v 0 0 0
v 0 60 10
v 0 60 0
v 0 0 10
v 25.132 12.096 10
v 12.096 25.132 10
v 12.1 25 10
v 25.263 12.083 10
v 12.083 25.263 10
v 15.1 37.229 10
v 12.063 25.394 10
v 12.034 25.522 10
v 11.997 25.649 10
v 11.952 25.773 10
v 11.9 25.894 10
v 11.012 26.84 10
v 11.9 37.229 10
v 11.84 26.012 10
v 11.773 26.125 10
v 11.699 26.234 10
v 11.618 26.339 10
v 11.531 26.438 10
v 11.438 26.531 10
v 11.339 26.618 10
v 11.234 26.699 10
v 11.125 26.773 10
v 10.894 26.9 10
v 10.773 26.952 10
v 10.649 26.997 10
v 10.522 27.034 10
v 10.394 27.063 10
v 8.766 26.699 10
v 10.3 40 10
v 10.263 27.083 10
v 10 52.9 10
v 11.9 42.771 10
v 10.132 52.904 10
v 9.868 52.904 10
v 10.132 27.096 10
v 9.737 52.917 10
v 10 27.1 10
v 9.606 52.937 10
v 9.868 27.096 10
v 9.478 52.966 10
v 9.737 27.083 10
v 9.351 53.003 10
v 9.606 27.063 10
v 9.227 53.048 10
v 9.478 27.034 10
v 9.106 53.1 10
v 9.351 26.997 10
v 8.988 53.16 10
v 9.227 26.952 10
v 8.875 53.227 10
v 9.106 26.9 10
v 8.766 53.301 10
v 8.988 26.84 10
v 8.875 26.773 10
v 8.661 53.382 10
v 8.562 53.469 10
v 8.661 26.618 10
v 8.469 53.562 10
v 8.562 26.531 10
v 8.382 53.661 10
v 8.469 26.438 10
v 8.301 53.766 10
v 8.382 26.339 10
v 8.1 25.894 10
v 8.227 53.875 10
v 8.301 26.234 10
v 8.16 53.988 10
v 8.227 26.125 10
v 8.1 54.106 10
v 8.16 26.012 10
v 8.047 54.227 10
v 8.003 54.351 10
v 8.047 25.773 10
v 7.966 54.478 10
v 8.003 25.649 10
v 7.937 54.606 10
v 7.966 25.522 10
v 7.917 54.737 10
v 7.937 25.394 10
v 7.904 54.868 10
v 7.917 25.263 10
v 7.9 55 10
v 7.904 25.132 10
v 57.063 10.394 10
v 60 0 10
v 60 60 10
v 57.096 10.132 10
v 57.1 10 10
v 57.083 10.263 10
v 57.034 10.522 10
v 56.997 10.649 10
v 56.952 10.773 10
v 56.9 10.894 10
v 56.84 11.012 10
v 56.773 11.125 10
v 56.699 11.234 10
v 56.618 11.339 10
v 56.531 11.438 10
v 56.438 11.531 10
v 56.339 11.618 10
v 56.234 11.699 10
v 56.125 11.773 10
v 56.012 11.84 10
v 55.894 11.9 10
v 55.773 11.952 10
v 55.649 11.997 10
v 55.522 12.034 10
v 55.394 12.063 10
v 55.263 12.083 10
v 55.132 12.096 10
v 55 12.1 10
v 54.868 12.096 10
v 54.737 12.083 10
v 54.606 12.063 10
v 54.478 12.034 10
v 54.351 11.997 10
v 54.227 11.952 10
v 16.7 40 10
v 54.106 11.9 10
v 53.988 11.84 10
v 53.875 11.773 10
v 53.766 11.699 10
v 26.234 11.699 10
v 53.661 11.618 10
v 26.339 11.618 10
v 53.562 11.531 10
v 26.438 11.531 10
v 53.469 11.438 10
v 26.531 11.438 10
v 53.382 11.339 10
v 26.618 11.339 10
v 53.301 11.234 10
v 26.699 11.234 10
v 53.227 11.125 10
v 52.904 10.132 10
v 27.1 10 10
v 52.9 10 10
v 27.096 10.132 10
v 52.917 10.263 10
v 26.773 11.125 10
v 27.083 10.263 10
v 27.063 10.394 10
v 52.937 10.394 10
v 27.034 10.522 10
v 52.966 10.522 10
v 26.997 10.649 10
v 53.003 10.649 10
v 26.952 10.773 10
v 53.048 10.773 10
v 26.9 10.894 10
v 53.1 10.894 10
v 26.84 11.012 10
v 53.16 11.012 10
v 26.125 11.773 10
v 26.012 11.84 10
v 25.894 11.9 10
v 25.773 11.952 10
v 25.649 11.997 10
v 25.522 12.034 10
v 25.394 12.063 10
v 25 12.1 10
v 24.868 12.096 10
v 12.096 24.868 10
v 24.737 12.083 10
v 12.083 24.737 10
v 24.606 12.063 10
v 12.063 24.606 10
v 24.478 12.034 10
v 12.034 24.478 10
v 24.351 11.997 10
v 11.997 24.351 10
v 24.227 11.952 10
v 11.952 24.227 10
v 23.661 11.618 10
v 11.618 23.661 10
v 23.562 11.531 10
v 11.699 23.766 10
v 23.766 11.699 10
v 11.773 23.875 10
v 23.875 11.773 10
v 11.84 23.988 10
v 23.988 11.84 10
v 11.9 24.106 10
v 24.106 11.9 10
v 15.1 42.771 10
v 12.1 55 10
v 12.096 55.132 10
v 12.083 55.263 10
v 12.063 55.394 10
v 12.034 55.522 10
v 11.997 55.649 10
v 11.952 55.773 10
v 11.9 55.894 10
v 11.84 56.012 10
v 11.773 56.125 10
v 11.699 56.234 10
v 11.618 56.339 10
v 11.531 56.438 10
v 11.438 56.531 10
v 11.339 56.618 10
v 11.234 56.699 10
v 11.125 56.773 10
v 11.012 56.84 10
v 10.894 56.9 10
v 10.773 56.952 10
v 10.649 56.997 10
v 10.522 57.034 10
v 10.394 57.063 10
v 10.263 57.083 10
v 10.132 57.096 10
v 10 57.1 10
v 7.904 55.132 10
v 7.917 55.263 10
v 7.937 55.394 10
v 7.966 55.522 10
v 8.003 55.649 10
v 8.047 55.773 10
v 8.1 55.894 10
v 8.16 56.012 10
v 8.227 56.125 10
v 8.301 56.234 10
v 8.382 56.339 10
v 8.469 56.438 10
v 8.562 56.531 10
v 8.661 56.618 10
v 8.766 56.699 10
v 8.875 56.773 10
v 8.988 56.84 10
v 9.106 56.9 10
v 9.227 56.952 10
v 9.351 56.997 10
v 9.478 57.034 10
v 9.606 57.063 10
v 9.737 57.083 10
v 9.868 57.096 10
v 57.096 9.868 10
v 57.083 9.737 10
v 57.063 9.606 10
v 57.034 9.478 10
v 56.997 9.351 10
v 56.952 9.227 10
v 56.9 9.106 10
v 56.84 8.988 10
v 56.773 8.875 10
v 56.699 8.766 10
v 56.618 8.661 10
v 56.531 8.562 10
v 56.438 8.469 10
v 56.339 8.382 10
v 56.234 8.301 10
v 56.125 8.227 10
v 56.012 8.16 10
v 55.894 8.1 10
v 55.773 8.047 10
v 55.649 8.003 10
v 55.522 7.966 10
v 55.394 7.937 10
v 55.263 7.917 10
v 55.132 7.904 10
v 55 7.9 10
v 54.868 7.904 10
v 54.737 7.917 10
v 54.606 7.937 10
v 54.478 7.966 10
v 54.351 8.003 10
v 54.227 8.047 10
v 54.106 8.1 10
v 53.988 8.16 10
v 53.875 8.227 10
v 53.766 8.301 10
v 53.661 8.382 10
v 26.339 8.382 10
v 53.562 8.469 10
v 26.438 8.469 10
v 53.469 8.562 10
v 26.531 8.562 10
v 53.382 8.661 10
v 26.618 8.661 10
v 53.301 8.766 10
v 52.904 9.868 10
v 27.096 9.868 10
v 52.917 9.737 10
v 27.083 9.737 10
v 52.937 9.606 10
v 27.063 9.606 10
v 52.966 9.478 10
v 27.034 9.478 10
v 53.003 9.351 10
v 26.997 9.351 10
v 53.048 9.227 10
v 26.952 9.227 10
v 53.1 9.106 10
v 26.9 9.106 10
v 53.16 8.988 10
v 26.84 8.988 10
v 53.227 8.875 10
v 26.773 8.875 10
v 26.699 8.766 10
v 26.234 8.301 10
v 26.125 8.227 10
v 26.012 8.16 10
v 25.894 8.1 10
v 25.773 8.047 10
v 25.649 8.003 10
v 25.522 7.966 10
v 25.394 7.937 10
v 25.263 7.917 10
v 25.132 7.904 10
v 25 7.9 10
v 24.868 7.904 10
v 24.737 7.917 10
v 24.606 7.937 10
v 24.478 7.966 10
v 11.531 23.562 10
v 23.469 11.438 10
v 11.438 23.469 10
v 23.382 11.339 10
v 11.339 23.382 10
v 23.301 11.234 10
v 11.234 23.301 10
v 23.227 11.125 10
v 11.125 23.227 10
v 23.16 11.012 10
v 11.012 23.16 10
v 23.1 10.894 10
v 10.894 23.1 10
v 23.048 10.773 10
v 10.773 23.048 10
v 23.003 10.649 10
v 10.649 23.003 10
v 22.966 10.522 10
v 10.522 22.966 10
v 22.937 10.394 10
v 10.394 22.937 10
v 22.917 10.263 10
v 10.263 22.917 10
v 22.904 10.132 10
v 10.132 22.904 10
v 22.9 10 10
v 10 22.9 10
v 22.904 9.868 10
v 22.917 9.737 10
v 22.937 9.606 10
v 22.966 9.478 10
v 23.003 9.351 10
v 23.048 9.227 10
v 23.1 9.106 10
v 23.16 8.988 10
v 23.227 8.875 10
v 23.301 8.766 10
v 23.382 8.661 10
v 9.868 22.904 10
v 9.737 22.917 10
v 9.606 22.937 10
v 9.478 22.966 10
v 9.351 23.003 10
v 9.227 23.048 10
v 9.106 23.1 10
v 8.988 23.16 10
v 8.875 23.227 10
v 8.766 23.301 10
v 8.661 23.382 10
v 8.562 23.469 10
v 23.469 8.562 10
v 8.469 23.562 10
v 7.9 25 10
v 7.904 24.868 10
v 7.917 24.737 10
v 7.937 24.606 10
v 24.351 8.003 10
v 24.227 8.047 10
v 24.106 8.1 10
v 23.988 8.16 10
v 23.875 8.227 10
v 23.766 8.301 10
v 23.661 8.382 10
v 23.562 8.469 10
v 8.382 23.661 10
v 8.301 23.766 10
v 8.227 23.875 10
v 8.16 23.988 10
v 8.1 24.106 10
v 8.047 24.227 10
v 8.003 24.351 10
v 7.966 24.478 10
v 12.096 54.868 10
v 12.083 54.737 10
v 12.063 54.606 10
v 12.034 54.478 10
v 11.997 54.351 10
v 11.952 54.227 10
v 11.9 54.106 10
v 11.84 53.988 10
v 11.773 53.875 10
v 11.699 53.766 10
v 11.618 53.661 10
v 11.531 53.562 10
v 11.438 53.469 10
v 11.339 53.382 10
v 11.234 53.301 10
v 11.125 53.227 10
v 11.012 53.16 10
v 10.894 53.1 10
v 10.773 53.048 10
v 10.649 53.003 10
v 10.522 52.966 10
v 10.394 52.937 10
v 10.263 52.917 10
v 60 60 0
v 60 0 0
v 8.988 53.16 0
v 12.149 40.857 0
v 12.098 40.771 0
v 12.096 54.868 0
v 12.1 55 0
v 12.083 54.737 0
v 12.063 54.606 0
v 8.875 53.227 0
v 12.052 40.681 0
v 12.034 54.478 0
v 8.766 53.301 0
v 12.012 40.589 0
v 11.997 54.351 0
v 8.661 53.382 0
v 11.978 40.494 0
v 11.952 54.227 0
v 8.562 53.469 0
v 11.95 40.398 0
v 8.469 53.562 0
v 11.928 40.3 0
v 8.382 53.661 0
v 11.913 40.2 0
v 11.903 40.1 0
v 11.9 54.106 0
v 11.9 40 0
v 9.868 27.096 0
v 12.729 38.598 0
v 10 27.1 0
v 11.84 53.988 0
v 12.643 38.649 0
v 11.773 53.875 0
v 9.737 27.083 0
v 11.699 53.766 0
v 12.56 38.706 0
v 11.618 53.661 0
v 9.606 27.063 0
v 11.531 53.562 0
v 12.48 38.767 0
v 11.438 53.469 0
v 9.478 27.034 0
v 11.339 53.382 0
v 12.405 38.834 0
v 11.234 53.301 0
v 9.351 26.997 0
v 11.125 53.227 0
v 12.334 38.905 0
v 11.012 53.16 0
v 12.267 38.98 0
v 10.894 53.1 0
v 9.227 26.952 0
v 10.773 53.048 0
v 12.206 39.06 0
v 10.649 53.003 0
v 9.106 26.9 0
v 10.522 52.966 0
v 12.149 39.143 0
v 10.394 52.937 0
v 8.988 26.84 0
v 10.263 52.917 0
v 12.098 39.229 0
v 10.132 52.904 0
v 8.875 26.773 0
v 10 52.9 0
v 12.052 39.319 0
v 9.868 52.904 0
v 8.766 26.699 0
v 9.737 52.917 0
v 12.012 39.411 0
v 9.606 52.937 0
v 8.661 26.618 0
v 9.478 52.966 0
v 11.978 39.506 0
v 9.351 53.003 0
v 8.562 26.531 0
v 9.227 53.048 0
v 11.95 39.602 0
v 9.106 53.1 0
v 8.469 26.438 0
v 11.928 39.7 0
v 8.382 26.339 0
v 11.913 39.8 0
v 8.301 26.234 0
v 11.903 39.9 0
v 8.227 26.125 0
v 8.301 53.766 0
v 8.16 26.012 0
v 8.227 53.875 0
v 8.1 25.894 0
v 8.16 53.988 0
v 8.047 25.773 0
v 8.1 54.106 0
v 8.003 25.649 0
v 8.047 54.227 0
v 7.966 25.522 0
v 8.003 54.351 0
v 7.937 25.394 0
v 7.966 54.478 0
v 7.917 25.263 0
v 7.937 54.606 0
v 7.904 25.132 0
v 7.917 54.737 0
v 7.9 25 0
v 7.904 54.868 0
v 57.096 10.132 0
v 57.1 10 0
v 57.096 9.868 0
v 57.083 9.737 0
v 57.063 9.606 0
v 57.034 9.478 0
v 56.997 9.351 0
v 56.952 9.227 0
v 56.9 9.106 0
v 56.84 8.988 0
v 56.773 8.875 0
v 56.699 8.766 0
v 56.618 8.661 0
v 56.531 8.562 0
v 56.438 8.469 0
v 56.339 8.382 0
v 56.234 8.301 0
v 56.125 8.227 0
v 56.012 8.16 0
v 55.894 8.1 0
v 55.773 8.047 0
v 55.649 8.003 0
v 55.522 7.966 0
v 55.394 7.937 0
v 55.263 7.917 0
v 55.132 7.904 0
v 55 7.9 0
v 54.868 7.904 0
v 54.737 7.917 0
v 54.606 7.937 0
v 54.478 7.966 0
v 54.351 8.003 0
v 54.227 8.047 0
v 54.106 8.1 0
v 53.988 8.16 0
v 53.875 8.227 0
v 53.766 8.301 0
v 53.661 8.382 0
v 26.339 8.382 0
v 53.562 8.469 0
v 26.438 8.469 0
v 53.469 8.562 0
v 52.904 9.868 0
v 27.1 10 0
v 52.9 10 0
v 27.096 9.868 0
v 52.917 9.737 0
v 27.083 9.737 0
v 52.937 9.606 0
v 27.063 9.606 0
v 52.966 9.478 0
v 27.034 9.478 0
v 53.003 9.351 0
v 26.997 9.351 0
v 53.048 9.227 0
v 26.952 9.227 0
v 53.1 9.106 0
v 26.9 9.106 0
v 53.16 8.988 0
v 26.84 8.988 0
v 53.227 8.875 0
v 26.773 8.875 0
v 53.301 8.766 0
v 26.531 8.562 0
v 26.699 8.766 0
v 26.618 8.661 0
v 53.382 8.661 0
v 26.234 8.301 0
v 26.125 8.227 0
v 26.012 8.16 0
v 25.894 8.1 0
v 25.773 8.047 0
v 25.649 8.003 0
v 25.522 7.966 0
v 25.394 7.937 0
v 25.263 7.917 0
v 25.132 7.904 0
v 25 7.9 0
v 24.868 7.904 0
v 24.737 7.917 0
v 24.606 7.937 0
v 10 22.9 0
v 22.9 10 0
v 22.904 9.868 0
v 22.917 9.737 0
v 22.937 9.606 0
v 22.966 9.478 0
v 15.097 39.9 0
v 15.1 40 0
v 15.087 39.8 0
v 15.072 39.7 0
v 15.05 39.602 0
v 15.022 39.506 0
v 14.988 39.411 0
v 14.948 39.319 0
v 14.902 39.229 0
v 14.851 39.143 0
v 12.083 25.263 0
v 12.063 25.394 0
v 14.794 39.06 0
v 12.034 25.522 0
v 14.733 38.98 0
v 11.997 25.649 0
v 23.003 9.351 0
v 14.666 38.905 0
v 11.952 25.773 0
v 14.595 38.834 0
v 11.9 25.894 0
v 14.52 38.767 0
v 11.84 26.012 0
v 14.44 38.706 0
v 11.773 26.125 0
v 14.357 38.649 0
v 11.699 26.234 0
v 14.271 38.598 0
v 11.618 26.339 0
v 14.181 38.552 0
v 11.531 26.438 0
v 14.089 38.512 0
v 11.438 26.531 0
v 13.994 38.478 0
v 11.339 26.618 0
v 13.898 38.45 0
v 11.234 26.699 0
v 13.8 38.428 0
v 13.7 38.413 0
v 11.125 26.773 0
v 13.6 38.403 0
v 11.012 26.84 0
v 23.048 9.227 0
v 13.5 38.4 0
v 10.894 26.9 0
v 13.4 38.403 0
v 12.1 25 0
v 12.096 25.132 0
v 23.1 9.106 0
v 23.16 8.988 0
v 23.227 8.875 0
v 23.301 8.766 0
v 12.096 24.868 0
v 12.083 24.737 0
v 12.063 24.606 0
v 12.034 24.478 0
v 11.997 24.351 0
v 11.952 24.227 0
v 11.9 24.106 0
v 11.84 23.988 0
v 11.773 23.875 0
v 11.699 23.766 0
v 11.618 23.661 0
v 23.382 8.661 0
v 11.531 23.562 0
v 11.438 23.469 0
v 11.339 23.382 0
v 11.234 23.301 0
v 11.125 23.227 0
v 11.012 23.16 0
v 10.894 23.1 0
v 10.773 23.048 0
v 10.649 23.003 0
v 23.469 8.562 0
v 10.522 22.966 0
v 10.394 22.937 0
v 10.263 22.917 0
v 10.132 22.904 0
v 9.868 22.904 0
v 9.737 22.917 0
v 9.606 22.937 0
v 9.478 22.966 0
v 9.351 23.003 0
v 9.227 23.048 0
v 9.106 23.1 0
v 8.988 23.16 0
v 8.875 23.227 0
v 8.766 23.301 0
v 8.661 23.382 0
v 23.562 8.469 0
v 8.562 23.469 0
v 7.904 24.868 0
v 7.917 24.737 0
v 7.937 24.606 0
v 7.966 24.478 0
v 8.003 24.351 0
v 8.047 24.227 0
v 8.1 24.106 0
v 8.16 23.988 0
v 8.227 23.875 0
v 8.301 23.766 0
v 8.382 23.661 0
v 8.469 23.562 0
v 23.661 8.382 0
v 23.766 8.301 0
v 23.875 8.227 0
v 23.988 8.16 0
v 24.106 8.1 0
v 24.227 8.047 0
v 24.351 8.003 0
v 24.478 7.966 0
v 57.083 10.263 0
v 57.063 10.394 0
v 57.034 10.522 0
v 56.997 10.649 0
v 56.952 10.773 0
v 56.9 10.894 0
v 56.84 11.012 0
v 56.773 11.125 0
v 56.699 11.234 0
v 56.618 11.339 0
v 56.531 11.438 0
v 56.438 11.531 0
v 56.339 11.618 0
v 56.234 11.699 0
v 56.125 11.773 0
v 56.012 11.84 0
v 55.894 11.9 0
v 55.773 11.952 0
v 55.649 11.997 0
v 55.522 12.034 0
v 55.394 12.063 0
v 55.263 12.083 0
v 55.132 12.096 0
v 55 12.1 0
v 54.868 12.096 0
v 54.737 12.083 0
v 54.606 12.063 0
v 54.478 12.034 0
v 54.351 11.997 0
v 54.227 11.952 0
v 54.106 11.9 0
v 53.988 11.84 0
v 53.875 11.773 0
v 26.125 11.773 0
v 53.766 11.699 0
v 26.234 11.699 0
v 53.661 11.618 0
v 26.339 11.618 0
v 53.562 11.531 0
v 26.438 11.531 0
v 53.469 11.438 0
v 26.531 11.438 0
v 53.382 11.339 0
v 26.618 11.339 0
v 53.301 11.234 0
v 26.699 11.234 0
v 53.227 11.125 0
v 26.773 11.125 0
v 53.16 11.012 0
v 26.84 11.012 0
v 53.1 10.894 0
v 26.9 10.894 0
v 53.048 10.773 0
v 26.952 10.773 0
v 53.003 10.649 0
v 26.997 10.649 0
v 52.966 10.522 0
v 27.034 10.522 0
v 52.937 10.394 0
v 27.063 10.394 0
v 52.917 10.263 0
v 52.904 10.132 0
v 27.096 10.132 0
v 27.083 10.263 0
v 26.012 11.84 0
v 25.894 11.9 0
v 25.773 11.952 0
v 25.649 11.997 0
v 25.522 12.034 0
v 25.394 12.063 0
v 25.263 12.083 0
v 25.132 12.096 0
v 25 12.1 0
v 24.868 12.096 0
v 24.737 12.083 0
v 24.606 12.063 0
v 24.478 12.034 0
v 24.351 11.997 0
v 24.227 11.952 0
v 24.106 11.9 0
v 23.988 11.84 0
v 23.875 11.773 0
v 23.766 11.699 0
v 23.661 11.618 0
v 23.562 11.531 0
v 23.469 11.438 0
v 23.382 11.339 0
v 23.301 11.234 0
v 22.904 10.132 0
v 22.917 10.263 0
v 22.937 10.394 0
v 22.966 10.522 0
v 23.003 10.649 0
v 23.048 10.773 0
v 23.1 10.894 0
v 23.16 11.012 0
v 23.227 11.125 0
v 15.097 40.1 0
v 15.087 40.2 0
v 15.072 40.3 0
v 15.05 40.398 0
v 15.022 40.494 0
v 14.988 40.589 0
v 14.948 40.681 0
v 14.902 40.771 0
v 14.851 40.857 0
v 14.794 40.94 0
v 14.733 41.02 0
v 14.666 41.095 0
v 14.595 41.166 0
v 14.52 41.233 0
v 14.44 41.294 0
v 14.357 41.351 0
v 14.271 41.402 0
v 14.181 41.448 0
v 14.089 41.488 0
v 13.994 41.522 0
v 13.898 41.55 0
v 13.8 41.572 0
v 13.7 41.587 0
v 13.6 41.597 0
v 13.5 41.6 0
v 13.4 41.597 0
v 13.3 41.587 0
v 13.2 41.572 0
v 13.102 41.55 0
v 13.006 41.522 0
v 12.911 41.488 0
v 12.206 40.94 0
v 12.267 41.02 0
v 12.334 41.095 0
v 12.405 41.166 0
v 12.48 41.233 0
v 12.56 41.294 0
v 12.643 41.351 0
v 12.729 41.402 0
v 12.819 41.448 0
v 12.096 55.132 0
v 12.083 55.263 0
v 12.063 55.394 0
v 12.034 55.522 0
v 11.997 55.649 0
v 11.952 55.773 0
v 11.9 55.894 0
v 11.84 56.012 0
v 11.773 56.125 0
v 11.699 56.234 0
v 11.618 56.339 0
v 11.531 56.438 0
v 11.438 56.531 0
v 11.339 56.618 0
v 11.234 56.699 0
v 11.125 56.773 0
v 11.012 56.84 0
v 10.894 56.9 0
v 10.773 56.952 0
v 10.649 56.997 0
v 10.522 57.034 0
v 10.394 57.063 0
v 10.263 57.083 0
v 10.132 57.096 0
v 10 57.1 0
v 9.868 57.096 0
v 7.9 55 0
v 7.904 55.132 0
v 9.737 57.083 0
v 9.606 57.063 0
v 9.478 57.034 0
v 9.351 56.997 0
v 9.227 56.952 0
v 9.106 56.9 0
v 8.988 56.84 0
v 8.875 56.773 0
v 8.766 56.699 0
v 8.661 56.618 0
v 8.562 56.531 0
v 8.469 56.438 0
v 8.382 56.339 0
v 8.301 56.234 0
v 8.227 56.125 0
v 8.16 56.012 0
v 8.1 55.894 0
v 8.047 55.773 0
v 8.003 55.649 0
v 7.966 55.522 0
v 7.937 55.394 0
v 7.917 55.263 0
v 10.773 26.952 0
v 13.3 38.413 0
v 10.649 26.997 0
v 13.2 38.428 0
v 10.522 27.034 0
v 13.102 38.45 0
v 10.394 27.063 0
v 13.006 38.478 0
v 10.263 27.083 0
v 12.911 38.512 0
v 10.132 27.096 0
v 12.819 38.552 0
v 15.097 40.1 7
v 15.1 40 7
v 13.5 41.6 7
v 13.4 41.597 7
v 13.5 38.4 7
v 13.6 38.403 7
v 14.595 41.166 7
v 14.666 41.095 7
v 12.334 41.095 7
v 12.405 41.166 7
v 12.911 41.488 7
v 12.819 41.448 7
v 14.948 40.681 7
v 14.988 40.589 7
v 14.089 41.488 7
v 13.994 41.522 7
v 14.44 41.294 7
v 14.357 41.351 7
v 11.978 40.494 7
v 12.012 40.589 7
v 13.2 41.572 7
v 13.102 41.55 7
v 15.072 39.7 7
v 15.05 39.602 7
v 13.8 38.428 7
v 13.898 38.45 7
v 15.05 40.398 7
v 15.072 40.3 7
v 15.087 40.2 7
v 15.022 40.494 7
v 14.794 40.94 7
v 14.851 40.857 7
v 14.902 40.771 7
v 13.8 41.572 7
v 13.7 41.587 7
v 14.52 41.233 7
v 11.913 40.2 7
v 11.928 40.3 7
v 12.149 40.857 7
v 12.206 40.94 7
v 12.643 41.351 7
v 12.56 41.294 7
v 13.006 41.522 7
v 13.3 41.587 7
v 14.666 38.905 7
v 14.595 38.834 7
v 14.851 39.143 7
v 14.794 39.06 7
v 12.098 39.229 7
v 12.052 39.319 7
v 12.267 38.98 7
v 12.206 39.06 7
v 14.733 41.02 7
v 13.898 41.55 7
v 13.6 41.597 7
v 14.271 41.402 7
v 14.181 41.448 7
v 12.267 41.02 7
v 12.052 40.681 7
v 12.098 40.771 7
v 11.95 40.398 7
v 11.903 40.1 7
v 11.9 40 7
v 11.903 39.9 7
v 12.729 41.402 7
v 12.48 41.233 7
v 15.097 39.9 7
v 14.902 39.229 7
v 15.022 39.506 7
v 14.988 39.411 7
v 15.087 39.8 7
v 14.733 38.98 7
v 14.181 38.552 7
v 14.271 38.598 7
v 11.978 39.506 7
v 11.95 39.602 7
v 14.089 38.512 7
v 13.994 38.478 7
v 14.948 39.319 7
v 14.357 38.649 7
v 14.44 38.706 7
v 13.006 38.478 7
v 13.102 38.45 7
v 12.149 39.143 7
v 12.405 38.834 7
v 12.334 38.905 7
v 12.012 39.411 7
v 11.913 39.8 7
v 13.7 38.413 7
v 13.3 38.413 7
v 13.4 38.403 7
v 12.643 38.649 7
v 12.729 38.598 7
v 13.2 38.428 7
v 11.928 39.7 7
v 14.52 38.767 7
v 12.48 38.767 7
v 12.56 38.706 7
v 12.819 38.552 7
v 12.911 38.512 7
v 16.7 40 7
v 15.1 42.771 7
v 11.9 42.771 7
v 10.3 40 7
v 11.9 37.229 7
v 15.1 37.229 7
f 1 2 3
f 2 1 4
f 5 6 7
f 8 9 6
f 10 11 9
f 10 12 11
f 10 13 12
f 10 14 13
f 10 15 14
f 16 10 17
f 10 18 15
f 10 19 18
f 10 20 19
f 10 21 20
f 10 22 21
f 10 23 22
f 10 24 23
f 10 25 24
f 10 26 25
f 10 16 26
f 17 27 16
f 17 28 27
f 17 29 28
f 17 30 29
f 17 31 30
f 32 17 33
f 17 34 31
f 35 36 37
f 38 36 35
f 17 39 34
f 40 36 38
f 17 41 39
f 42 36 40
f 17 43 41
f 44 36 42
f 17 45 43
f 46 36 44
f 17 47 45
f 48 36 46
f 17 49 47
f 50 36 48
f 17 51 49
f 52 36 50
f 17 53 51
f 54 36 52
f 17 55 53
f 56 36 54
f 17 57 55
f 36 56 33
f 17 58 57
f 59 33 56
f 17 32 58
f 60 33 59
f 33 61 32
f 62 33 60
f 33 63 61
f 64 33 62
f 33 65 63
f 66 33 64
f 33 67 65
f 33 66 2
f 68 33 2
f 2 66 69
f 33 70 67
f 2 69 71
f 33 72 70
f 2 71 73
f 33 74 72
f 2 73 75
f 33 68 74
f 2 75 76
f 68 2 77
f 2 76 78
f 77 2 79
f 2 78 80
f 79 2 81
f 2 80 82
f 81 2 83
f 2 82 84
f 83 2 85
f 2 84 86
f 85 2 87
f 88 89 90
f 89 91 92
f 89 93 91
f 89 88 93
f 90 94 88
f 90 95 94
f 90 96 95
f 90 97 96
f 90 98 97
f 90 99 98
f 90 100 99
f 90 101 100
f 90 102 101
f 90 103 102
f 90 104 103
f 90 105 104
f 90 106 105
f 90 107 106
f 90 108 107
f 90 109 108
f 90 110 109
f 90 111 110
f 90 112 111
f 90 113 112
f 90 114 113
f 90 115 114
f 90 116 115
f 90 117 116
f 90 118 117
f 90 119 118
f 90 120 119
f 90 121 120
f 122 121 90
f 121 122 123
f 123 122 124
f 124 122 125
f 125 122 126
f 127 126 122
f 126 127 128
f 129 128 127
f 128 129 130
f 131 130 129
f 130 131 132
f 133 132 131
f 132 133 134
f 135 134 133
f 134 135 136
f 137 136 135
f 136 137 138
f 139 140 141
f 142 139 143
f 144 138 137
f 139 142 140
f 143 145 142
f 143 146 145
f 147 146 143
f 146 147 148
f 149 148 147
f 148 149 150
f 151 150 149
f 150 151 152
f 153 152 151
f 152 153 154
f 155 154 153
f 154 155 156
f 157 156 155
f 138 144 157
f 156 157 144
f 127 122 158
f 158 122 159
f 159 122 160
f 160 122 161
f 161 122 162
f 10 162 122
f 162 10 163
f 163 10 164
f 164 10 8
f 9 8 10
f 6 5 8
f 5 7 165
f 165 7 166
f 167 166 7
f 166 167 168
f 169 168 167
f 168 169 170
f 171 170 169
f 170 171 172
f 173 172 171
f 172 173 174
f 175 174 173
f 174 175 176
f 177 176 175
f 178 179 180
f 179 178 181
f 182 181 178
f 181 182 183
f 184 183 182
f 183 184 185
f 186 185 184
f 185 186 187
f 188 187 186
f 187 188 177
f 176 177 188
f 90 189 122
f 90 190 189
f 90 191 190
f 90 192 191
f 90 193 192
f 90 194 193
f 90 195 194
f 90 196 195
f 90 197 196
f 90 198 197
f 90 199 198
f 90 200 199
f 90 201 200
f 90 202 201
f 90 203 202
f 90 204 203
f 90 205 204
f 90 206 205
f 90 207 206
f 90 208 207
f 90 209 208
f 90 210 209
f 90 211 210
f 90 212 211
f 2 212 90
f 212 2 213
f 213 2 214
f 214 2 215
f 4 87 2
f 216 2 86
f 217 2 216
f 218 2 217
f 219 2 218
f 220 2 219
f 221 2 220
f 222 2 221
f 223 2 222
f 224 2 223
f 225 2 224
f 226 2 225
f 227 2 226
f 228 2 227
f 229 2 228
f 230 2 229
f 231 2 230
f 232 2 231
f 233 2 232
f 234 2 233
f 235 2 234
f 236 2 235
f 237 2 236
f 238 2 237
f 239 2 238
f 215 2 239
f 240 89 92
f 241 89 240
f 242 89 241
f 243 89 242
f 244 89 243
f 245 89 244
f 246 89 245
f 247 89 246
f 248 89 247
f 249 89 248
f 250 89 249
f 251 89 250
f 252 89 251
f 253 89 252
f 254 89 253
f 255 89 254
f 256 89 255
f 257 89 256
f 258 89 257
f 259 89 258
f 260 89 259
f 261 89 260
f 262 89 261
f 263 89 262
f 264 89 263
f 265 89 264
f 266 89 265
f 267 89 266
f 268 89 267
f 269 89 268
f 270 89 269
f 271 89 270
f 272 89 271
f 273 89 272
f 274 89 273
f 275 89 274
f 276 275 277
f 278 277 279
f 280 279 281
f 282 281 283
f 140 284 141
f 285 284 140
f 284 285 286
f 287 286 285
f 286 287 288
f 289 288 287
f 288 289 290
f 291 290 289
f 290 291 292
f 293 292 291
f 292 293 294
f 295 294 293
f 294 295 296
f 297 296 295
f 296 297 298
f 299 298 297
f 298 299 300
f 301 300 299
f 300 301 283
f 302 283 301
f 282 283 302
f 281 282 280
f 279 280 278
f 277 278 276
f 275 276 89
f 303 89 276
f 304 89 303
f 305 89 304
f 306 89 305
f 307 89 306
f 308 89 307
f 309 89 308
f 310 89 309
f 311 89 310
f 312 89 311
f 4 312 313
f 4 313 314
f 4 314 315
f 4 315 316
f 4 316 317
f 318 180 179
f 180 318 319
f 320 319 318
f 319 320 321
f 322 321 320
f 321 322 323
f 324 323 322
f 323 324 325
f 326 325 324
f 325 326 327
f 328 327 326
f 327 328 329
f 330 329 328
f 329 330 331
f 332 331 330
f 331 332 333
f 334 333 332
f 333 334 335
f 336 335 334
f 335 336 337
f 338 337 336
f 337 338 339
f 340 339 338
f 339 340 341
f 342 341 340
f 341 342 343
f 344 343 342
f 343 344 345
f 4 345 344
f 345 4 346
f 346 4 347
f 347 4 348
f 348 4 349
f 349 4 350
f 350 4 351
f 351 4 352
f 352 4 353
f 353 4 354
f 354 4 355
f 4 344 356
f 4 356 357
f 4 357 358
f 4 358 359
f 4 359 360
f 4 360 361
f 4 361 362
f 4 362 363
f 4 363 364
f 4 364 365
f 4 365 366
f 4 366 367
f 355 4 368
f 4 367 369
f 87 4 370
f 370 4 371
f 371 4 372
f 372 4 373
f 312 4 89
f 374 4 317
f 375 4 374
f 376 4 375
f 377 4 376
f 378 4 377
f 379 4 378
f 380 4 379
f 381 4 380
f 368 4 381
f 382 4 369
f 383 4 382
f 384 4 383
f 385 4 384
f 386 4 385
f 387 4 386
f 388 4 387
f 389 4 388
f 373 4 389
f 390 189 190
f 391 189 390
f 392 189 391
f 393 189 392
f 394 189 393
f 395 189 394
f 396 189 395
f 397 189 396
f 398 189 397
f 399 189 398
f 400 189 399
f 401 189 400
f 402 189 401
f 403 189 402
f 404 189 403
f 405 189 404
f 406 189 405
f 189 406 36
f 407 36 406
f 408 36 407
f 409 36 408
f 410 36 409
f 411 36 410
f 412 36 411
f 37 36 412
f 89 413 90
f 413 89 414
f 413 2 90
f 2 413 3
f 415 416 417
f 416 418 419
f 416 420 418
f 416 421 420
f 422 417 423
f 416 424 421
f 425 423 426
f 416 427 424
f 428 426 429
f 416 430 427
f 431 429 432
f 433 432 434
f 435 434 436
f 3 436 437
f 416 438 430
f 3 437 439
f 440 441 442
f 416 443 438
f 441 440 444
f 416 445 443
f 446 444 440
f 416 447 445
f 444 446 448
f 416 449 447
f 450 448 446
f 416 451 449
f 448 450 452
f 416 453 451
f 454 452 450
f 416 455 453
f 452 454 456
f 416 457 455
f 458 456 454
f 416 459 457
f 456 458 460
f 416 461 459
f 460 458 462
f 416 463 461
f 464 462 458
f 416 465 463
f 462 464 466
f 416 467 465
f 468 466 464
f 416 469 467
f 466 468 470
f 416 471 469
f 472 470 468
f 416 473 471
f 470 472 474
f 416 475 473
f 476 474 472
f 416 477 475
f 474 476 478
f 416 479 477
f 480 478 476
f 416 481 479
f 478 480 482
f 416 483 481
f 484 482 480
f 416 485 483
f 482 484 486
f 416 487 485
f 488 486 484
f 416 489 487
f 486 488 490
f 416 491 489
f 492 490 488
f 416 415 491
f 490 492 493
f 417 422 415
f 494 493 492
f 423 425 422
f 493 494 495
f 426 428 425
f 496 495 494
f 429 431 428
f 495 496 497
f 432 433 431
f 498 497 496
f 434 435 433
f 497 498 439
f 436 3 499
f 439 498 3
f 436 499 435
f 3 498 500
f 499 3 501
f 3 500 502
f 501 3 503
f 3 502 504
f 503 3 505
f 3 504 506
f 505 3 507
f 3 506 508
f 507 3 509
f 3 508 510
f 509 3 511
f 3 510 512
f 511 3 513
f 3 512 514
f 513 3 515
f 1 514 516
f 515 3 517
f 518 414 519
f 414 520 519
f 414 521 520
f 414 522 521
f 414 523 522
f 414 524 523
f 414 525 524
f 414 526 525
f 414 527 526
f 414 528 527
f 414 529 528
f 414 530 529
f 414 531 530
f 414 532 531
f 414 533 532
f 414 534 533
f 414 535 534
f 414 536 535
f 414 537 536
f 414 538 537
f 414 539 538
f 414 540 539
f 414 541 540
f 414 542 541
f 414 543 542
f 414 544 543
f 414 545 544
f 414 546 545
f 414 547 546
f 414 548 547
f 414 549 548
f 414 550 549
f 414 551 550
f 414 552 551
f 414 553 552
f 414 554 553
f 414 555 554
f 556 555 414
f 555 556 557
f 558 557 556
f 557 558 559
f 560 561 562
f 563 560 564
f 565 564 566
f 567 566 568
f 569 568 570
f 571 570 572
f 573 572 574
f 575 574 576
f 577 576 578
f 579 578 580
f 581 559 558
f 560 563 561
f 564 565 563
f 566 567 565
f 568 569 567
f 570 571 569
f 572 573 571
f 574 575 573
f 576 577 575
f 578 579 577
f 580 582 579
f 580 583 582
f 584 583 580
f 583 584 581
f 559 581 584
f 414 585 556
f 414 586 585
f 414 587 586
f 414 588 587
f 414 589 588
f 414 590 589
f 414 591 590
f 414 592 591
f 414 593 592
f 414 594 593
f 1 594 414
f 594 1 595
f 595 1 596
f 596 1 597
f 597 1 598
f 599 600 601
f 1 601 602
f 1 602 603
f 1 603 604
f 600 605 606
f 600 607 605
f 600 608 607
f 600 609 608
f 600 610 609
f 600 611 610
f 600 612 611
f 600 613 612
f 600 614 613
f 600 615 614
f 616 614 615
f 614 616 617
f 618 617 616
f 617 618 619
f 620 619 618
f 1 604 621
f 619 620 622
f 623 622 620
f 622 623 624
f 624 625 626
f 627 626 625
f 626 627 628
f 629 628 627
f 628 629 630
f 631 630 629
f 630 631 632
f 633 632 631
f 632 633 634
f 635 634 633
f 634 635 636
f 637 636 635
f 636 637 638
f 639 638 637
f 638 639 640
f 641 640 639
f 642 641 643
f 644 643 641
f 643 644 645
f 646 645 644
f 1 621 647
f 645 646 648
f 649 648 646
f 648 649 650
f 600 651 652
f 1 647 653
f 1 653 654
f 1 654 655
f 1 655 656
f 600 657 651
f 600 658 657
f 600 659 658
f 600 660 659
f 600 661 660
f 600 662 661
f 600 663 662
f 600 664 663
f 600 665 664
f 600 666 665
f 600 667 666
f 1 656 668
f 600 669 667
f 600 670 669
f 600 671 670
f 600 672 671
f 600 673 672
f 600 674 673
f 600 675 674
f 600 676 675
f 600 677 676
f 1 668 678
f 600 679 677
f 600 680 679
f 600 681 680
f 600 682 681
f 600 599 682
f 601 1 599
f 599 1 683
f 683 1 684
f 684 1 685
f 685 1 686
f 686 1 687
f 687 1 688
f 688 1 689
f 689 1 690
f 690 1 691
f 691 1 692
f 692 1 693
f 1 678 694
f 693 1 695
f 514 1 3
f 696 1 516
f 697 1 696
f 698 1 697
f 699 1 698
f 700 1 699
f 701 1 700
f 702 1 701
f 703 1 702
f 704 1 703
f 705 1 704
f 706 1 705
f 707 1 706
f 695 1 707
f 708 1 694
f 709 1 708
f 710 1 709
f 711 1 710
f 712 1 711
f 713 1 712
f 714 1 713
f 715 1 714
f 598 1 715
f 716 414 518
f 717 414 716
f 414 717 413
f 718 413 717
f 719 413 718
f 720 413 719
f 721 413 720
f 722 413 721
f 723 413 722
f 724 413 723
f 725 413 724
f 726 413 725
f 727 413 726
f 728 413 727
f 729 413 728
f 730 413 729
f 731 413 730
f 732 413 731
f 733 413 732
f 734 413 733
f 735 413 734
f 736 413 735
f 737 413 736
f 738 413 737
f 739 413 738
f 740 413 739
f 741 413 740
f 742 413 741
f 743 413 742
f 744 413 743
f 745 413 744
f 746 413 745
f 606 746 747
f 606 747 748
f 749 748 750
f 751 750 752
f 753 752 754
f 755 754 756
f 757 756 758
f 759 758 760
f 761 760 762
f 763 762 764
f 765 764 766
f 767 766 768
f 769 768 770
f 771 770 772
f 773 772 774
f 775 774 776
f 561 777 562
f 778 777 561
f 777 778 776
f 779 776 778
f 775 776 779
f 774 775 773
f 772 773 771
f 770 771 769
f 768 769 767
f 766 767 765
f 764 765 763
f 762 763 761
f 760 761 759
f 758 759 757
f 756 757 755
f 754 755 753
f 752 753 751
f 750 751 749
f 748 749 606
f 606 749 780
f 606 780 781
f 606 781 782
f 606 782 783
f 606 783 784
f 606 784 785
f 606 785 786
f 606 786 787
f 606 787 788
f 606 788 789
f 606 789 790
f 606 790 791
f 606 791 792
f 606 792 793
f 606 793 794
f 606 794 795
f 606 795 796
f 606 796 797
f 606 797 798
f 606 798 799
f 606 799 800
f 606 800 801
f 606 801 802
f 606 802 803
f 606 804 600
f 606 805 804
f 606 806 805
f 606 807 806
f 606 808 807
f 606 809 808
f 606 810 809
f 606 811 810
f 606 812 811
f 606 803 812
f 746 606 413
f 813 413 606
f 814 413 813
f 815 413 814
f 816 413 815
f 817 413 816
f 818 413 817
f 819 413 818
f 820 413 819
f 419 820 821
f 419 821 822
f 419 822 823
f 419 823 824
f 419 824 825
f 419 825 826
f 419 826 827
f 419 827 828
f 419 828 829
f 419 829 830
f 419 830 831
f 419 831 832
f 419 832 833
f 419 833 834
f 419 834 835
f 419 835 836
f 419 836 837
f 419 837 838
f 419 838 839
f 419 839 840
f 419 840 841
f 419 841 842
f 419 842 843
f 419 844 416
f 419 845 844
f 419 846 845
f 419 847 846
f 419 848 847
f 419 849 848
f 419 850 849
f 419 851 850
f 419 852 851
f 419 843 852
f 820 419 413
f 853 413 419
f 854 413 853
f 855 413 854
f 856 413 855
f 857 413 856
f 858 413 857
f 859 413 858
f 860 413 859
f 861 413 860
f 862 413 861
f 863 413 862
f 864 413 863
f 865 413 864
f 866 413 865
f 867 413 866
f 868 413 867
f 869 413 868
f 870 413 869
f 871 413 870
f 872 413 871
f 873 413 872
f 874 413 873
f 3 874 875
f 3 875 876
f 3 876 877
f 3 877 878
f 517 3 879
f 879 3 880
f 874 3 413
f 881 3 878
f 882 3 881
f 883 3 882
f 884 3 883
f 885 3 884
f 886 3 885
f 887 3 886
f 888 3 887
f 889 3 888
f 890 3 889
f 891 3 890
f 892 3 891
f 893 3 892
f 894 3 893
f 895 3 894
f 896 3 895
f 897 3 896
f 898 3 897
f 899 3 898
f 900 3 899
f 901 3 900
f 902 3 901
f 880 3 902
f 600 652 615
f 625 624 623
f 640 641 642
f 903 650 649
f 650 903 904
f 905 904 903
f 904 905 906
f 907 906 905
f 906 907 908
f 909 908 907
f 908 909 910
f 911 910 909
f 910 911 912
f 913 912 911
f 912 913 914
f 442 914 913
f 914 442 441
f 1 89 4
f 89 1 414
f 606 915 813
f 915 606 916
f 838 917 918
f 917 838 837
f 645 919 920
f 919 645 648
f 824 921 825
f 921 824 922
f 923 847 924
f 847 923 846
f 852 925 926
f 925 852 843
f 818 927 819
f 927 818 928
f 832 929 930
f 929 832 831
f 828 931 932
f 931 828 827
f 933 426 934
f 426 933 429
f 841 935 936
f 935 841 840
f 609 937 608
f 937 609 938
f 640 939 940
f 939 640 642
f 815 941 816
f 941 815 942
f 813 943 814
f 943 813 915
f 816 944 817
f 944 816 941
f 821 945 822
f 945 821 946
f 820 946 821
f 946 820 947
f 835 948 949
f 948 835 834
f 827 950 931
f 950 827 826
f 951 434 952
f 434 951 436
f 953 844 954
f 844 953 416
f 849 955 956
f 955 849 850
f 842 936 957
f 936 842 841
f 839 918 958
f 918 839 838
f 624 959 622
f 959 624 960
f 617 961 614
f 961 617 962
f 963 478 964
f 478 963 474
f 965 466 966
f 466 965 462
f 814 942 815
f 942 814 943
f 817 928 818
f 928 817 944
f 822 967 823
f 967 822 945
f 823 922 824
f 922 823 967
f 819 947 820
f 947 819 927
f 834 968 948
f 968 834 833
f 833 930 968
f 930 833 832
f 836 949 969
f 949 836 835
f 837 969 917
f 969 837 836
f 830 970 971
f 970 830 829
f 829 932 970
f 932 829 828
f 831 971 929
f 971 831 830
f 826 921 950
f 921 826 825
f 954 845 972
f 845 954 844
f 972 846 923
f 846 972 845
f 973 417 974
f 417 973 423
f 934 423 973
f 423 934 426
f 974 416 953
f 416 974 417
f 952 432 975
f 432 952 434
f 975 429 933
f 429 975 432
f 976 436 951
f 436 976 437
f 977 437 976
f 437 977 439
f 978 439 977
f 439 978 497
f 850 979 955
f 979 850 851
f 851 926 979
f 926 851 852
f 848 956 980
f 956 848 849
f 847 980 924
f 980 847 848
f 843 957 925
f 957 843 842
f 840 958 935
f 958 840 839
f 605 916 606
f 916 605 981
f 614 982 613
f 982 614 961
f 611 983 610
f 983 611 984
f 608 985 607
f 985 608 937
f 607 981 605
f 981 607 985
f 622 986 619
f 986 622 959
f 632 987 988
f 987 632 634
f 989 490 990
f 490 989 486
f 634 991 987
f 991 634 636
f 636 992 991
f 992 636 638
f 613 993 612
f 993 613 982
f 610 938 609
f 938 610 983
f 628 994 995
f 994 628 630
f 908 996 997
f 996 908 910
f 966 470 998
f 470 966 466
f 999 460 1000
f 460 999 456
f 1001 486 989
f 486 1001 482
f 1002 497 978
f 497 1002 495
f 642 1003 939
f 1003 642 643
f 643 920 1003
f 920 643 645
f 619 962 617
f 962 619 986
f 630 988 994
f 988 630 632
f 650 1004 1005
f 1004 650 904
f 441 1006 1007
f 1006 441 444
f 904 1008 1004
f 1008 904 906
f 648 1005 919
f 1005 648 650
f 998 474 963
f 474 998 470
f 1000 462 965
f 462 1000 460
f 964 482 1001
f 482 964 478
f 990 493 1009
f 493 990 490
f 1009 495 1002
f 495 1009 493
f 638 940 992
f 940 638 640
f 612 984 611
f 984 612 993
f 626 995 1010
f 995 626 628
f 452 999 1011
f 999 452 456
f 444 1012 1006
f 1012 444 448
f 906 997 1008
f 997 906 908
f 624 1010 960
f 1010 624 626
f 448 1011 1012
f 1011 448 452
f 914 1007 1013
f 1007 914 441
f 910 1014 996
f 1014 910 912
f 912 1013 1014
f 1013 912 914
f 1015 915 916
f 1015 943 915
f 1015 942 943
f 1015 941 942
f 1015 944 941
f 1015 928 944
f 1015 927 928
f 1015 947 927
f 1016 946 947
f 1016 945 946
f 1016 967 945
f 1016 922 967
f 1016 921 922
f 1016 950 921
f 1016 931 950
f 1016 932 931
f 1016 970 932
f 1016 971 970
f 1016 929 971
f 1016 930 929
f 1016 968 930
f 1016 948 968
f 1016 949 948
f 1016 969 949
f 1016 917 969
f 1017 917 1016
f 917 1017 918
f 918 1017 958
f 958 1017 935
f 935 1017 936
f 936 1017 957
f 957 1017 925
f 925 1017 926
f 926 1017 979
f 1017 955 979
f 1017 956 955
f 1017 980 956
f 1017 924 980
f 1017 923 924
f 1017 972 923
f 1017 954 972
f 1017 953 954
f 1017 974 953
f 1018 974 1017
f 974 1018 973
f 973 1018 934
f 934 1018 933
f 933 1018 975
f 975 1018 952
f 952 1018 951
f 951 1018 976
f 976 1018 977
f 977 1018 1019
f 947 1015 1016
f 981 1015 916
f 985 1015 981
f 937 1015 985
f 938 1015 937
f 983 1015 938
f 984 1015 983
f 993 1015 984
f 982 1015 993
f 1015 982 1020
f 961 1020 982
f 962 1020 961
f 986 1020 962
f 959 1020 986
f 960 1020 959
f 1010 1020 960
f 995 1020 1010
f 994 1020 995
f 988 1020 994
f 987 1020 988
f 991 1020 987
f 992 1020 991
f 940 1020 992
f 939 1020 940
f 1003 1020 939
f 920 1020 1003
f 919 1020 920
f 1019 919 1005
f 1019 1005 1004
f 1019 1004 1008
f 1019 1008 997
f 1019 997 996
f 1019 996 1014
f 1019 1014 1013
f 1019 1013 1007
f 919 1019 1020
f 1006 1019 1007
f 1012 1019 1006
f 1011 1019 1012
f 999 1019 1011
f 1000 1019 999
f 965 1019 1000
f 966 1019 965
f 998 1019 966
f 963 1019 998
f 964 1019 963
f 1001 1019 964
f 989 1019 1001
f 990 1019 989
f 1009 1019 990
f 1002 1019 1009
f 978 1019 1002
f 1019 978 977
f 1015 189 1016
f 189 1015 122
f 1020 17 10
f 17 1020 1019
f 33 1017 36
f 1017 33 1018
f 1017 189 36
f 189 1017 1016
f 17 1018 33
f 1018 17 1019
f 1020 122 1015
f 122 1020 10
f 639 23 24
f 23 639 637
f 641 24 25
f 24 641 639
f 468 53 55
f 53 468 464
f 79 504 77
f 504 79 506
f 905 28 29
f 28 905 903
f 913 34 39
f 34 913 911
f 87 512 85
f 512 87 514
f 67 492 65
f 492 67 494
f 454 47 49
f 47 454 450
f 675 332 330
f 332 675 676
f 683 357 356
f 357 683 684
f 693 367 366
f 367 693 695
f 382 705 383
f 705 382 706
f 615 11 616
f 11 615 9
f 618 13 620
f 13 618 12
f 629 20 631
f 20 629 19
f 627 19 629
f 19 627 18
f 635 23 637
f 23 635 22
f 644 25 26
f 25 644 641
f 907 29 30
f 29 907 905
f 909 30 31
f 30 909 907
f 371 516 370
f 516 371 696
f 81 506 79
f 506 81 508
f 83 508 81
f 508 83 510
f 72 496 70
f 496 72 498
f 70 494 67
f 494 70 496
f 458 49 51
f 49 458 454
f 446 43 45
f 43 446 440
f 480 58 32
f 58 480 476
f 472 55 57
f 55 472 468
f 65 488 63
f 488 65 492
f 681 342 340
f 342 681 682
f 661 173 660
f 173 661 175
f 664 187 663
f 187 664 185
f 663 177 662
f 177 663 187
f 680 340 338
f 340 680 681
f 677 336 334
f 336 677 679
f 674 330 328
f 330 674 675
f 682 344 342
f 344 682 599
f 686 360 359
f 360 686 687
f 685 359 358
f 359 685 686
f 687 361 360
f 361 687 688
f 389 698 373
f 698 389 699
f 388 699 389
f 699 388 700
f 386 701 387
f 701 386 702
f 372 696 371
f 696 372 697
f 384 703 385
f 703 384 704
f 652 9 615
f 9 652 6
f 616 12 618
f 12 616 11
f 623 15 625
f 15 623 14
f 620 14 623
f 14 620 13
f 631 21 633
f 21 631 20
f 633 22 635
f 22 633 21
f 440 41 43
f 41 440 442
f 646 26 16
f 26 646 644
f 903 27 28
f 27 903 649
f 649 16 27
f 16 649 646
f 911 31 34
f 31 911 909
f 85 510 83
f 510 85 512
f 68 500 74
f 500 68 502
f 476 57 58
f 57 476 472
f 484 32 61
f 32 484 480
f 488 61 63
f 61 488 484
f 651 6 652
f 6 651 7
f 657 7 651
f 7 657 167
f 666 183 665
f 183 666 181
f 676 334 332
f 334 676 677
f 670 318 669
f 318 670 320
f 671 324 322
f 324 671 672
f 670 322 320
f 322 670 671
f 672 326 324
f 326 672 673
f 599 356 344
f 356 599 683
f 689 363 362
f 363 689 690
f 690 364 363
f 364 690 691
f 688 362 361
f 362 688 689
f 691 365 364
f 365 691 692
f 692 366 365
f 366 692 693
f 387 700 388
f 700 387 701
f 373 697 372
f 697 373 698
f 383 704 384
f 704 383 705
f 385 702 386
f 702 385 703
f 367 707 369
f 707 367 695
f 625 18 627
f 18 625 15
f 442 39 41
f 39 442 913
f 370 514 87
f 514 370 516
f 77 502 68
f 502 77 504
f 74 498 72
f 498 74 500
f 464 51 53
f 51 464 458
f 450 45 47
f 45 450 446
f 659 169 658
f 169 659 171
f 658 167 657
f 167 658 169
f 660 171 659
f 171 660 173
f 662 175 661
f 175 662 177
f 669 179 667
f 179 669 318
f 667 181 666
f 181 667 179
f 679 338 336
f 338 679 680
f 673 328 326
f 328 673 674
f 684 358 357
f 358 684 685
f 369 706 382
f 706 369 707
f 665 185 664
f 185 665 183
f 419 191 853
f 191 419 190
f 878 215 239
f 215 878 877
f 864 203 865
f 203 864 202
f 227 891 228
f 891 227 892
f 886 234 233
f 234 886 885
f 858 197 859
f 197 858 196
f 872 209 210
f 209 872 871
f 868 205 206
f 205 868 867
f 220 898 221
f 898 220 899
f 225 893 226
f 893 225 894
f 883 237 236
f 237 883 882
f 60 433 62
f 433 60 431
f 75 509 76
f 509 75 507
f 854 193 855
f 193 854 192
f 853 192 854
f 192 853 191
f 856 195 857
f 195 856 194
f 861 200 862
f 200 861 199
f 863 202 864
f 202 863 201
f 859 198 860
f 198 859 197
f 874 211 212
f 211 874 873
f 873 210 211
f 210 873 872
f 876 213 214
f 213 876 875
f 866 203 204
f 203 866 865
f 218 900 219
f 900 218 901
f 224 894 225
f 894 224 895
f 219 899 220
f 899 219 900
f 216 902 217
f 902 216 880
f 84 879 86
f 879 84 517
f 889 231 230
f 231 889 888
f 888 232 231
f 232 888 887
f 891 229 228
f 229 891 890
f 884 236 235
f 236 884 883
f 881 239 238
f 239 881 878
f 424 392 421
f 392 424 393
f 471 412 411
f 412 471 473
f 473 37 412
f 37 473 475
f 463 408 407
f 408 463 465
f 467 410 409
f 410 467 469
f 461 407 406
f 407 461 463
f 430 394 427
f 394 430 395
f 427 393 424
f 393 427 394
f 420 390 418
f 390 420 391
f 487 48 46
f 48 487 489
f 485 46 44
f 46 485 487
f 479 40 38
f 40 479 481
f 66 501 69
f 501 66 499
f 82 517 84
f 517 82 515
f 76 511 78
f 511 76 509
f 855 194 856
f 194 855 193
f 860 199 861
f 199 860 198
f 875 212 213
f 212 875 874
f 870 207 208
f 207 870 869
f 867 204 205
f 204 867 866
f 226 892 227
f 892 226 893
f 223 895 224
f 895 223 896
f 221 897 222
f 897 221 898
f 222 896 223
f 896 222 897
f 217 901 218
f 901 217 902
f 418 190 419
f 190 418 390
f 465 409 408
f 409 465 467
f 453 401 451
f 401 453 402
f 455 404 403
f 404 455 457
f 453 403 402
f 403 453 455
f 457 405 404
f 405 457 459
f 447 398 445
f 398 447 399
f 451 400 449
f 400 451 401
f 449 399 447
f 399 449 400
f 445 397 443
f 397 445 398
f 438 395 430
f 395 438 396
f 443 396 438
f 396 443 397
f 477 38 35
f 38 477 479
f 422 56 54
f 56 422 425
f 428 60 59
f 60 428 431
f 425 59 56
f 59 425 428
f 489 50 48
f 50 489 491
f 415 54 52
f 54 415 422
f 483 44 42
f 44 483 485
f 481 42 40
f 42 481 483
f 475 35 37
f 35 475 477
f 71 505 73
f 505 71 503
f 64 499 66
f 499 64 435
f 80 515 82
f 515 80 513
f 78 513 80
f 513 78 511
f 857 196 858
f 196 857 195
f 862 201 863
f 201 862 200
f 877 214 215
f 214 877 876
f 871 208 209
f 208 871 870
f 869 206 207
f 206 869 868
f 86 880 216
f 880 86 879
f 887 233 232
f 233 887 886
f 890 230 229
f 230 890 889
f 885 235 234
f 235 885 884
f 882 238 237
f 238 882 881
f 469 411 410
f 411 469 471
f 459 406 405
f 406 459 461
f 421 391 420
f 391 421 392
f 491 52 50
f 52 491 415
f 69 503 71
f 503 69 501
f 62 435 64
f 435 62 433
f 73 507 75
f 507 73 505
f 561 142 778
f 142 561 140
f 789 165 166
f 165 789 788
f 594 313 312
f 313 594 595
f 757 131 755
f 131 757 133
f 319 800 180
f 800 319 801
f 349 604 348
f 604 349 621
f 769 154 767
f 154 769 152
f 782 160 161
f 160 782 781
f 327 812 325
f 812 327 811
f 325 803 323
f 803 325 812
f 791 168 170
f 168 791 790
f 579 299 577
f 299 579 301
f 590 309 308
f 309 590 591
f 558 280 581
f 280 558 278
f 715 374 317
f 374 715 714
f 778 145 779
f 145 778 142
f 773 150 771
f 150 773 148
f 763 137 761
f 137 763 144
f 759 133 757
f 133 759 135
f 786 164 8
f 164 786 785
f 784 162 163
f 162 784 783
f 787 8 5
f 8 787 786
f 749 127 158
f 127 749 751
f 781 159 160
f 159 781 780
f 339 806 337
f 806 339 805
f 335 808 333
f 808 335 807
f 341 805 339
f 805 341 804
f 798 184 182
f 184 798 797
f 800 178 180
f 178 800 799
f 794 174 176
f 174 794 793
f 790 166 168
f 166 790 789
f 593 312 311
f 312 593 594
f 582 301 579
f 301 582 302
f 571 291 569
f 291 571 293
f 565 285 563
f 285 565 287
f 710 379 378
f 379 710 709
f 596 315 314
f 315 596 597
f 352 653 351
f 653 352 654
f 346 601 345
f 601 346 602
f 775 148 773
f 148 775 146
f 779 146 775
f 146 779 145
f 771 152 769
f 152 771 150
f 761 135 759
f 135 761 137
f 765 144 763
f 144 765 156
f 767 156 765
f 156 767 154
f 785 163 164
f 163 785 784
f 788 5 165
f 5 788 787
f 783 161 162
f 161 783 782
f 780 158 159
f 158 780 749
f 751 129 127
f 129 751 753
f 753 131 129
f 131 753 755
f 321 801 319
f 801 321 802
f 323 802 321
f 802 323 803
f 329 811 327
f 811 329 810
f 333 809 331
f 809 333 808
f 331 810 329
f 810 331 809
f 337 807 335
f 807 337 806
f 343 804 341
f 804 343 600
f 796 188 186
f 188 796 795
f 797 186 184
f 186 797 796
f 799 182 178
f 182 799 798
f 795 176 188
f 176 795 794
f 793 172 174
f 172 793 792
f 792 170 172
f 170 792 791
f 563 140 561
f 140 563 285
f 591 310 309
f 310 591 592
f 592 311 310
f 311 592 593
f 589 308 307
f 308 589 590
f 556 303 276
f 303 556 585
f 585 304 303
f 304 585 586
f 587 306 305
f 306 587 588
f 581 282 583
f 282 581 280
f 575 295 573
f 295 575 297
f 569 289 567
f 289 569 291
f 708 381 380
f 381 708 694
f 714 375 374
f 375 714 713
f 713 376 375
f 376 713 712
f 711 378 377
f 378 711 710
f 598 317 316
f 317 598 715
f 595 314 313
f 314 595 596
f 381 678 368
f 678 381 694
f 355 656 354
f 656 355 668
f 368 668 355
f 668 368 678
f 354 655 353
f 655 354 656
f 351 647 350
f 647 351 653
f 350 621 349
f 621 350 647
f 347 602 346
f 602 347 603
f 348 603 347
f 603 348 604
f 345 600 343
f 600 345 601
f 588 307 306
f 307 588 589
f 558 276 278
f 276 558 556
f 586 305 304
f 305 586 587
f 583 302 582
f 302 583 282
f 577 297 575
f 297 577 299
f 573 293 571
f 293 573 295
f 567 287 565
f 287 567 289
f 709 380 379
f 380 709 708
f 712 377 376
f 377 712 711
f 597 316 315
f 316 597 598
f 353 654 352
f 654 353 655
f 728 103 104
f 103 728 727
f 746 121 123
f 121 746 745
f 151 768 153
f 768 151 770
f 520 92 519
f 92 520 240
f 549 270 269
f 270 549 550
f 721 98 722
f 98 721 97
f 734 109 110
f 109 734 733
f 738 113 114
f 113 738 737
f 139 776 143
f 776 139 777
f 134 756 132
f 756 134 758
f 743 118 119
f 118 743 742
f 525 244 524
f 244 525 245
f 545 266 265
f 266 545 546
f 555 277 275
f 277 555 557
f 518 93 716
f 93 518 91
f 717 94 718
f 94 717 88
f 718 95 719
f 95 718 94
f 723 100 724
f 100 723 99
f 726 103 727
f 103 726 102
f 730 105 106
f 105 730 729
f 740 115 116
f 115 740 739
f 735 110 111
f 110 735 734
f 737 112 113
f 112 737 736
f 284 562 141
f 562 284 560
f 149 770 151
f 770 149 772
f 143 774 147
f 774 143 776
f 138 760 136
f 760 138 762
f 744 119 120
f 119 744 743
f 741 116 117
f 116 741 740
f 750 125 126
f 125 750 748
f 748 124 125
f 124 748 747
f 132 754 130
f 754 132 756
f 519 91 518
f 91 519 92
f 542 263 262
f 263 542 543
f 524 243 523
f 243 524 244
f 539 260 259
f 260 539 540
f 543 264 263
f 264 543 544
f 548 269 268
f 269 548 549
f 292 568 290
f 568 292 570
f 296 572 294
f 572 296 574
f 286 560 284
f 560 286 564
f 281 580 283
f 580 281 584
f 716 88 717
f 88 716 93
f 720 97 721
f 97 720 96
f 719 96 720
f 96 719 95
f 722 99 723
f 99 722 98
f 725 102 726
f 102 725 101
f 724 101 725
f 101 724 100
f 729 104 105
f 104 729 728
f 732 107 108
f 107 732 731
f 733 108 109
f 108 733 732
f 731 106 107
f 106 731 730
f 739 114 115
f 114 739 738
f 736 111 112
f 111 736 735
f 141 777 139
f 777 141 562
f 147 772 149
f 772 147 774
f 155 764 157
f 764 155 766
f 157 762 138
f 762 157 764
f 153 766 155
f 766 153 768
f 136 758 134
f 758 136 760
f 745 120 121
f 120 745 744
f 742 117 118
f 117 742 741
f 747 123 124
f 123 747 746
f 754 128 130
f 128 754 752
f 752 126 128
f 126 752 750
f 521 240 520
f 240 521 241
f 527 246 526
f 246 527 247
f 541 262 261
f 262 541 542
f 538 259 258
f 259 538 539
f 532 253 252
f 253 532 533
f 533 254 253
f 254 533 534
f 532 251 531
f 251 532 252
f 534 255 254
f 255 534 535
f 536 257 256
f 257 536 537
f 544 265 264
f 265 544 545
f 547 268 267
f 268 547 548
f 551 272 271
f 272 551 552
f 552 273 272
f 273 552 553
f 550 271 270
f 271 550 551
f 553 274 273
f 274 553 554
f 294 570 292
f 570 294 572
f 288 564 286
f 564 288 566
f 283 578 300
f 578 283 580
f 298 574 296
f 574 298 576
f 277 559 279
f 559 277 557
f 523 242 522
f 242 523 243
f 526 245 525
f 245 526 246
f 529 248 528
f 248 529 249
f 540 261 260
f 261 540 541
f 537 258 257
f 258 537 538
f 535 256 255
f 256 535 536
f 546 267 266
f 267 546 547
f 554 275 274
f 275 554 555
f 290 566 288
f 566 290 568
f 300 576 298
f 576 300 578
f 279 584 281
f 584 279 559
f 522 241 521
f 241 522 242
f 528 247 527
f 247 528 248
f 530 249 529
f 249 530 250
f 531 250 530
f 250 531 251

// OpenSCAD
b_in_r=3.98;
hole_r=1.6;
hole_m_r=2.1;

$fn=100;

module 608_bearing(){
    difference(){
        cylinder(r=12, h=30);
        cylinder(r=b_in_r, h=30);
        cylinder(r=6,h=0.5);
        //translate([0,0,7.5])cylinder(r=6,h=0.5);
        }
        translate([0,0,-10])cylinder(r=hole_r, h=30);
}

module slice_pie(r=10,a=10, h=10){
    difference(){
      cylinder(r=r, h=h);
      translate([-r,0,0])cube([r*2,r,h]);
        rotate([0,0,180-a])translate([-r,0,0])cube([r*2,r,h]);
      cylinder(r=6,h=h);
    }
}

module m3_hole(){
    cylinder(r=3.2, h=3, $fn=6);
    }

module belt_idler_2(){    
difference(){
cube([60,60,10]);
//cube([20,20,50]);
//    translate([13.5,20,1])608_bearing();
//    translate([13.5,20,1])rotate([0,0,-20])slice_pie(r=13,a=180,h=10);
    translate([13.5,40,0])cylinder(r=hole_r, h=20);
    translate([13.5,40,7])m3_hole();

//translate([0,20,1])cube([3,100,10]);
    translate([10,25,0])cylinder(r=hole_m_r,h=20);
    translate([10,55,0])cylinder(r=hole_m_r,h=20);
    translate([25,10,0])cylinder(r=hole_m_r,h=20);
    translate([55,10,0])cylinder(r=hole_m_r,h=20);
}
}

belt_idler_2();
